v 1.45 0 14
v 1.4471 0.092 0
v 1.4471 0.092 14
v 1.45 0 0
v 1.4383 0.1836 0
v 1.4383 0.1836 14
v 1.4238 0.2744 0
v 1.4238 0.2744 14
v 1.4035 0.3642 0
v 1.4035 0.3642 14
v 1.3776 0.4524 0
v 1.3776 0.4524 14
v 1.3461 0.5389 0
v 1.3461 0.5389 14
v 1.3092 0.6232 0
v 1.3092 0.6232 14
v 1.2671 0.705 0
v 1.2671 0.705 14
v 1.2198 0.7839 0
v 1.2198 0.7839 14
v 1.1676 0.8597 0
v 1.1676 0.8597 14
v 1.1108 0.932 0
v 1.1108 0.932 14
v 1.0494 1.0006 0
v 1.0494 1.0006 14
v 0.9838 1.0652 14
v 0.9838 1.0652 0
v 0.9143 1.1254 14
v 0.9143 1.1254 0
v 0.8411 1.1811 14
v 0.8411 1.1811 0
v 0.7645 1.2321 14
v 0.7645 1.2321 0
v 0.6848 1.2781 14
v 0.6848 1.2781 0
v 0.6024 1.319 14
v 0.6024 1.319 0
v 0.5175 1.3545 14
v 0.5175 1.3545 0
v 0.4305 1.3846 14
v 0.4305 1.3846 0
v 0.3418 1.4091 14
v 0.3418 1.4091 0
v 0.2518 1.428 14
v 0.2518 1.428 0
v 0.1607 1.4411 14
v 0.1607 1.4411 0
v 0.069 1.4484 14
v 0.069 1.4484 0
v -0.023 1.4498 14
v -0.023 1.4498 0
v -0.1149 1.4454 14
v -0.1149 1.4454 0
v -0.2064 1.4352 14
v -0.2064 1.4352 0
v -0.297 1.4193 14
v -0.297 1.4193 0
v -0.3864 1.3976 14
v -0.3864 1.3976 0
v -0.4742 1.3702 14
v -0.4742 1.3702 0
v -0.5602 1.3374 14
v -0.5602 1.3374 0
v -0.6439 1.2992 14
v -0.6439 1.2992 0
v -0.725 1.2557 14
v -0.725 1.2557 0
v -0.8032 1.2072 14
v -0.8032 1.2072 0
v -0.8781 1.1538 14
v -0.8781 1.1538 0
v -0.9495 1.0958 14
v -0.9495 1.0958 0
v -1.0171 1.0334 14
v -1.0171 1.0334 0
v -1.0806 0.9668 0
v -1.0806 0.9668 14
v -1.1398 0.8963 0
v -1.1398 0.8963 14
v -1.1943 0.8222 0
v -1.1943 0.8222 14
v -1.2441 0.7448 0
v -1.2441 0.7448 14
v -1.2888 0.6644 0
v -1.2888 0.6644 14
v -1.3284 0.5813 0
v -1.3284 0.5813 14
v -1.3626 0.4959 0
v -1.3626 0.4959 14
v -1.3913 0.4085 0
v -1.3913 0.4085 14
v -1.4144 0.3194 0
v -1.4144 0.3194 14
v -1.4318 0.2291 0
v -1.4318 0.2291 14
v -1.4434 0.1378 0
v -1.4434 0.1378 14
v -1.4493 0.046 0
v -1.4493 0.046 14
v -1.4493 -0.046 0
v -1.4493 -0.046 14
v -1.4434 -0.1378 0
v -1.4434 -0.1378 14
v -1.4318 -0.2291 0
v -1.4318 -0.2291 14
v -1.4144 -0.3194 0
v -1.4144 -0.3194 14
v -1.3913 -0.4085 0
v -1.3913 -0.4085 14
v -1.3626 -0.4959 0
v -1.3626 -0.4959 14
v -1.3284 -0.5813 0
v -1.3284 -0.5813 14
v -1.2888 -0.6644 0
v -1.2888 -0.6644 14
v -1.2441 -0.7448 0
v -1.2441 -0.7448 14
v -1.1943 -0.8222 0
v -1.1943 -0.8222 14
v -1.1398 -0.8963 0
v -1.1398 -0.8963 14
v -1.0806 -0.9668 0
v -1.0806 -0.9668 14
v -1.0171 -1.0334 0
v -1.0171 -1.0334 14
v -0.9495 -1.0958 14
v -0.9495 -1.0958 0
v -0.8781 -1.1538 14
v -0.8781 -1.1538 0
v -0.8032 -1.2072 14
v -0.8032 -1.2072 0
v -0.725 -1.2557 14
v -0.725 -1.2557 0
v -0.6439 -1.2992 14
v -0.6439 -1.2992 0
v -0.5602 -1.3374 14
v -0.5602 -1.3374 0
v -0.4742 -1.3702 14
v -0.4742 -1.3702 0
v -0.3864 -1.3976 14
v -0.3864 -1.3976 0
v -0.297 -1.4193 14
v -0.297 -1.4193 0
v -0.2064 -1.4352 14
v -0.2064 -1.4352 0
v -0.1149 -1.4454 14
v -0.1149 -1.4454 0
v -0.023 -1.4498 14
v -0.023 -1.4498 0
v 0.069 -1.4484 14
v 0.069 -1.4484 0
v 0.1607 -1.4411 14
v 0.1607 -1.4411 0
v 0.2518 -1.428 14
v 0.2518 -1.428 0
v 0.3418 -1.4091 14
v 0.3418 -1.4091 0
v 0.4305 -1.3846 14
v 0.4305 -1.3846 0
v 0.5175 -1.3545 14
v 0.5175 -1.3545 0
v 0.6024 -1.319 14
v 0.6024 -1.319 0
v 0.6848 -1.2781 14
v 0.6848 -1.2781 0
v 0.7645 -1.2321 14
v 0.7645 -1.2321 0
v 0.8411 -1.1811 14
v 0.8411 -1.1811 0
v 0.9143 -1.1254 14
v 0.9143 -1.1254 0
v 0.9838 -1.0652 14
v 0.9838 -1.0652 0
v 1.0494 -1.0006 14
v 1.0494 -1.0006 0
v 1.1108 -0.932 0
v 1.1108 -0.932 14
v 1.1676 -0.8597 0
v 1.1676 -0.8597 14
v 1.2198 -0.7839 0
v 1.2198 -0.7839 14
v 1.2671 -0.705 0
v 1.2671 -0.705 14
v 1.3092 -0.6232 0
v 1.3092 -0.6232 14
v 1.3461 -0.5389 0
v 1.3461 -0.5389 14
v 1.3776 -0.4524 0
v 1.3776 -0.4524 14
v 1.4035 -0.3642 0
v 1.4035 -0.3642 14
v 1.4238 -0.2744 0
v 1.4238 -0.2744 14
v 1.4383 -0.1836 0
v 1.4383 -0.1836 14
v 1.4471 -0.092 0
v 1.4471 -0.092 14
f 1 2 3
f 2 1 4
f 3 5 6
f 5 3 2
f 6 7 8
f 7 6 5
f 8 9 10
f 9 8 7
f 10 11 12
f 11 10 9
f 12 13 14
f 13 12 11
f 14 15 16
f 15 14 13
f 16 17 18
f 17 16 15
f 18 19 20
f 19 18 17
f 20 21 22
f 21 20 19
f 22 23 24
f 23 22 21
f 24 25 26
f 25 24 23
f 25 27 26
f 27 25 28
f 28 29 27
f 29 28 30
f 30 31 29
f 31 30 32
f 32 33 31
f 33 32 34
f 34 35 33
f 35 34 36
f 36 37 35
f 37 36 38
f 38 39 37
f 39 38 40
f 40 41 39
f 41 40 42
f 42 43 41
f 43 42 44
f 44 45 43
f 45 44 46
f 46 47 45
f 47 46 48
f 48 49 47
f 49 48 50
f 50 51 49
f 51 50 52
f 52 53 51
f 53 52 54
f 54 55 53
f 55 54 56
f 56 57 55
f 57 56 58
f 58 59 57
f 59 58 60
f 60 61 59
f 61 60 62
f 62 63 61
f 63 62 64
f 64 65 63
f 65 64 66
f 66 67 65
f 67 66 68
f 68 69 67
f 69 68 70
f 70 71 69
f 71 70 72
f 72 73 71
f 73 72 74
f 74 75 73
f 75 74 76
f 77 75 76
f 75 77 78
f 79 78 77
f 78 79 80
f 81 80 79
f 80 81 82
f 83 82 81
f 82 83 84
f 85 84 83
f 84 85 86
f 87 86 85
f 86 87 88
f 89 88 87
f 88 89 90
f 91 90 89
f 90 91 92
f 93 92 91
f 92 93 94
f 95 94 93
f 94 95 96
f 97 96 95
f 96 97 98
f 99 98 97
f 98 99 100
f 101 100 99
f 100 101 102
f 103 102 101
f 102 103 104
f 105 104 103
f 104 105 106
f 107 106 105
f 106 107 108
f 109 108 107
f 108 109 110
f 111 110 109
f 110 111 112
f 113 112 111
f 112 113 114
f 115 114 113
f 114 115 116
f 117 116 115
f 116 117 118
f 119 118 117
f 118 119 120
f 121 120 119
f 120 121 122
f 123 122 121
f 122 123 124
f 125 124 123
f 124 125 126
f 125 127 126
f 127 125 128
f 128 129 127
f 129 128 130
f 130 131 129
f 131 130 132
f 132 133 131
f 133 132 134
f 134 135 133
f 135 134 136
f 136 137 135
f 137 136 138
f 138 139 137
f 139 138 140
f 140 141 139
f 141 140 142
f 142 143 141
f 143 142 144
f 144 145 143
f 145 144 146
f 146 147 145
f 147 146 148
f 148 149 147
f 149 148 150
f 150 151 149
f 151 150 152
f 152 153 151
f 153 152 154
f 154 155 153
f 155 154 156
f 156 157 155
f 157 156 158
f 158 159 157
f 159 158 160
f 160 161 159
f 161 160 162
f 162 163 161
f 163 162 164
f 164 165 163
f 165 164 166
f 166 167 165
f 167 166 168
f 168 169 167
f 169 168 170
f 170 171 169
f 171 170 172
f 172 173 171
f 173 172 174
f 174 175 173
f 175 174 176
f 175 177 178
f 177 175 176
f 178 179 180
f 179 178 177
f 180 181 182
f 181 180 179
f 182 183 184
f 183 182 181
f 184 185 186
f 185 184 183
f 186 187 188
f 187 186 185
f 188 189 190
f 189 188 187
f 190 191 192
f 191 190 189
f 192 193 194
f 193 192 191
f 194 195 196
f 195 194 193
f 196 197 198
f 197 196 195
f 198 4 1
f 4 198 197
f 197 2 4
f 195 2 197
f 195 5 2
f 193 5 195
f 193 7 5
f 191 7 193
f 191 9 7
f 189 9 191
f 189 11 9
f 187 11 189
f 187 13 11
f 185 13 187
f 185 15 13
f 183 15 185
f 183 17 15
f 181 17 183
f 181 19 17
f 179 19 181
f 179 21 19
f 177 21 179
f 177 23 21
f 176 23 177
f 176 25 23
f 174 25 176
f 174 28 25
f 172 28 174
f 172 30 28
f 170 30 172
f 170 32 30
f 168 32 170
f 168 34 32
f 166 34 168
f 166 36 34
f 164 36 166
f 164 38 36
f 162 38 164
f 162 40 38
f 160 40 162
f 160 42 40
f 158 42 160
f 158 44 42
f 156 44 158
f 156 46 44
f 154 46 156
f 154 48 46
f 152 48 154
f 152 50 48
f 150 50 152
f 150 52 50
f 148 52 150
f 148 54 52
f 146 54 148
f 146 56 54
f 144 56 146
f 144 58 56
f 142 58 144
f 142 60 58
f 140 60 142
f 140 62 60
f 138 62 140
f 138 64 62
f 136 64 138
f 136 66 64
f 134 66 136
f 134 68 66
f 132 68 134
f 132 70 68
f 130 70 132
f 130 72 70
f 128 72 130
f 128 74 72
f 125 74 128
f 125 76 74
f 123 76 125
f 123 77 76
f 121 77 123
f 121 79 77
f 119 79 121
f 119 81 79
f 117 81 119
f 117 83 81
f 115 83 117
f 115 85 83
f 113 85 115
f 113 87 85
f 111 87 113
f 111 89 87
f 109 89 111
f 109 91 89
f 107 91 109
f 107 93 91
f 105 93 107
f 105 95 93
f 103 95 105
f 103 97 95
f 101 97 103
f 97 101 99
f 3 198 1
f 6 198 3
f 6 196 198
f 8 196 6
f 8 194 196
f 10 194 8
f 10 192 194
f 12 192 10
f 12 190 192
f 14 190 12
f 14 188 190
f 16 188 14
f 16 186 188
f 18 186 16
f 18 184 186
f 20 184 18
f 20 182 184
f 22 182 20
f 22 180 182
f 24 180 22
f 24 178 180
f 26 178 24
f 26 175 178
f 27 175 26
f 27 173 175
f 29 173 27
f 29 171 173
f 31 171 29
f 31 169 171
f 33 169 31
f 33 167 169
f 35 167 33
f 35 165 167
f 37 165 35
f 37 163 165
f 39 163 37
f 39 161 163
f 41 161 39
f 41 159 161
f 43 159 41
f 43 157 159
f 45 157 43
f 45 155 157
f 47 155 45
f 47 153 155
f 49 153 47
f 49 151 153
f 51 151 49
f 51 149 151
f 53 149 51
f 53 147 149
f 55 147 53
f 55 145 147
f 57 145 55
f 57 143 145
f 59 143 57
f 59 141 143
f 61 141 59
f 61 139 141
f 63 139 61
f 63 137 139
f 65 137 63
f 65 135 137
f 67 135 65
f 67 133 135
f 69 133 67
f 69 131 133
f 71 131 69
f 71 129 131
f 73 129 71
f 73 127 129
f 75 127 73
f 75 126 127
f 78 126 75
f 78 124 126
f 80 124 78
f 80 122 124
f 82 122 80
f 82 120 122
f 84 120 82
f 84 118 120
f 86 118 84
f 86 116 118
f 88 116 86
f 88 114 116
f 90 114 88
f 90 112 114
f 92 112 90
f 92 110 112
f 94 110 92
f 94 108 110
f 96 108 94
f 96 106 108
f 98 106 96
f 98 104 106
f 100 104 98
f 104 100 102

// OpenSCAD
cylinder($fn = 99, h = 14, r1 = 1.45, r2 = 1.45, center = false);
